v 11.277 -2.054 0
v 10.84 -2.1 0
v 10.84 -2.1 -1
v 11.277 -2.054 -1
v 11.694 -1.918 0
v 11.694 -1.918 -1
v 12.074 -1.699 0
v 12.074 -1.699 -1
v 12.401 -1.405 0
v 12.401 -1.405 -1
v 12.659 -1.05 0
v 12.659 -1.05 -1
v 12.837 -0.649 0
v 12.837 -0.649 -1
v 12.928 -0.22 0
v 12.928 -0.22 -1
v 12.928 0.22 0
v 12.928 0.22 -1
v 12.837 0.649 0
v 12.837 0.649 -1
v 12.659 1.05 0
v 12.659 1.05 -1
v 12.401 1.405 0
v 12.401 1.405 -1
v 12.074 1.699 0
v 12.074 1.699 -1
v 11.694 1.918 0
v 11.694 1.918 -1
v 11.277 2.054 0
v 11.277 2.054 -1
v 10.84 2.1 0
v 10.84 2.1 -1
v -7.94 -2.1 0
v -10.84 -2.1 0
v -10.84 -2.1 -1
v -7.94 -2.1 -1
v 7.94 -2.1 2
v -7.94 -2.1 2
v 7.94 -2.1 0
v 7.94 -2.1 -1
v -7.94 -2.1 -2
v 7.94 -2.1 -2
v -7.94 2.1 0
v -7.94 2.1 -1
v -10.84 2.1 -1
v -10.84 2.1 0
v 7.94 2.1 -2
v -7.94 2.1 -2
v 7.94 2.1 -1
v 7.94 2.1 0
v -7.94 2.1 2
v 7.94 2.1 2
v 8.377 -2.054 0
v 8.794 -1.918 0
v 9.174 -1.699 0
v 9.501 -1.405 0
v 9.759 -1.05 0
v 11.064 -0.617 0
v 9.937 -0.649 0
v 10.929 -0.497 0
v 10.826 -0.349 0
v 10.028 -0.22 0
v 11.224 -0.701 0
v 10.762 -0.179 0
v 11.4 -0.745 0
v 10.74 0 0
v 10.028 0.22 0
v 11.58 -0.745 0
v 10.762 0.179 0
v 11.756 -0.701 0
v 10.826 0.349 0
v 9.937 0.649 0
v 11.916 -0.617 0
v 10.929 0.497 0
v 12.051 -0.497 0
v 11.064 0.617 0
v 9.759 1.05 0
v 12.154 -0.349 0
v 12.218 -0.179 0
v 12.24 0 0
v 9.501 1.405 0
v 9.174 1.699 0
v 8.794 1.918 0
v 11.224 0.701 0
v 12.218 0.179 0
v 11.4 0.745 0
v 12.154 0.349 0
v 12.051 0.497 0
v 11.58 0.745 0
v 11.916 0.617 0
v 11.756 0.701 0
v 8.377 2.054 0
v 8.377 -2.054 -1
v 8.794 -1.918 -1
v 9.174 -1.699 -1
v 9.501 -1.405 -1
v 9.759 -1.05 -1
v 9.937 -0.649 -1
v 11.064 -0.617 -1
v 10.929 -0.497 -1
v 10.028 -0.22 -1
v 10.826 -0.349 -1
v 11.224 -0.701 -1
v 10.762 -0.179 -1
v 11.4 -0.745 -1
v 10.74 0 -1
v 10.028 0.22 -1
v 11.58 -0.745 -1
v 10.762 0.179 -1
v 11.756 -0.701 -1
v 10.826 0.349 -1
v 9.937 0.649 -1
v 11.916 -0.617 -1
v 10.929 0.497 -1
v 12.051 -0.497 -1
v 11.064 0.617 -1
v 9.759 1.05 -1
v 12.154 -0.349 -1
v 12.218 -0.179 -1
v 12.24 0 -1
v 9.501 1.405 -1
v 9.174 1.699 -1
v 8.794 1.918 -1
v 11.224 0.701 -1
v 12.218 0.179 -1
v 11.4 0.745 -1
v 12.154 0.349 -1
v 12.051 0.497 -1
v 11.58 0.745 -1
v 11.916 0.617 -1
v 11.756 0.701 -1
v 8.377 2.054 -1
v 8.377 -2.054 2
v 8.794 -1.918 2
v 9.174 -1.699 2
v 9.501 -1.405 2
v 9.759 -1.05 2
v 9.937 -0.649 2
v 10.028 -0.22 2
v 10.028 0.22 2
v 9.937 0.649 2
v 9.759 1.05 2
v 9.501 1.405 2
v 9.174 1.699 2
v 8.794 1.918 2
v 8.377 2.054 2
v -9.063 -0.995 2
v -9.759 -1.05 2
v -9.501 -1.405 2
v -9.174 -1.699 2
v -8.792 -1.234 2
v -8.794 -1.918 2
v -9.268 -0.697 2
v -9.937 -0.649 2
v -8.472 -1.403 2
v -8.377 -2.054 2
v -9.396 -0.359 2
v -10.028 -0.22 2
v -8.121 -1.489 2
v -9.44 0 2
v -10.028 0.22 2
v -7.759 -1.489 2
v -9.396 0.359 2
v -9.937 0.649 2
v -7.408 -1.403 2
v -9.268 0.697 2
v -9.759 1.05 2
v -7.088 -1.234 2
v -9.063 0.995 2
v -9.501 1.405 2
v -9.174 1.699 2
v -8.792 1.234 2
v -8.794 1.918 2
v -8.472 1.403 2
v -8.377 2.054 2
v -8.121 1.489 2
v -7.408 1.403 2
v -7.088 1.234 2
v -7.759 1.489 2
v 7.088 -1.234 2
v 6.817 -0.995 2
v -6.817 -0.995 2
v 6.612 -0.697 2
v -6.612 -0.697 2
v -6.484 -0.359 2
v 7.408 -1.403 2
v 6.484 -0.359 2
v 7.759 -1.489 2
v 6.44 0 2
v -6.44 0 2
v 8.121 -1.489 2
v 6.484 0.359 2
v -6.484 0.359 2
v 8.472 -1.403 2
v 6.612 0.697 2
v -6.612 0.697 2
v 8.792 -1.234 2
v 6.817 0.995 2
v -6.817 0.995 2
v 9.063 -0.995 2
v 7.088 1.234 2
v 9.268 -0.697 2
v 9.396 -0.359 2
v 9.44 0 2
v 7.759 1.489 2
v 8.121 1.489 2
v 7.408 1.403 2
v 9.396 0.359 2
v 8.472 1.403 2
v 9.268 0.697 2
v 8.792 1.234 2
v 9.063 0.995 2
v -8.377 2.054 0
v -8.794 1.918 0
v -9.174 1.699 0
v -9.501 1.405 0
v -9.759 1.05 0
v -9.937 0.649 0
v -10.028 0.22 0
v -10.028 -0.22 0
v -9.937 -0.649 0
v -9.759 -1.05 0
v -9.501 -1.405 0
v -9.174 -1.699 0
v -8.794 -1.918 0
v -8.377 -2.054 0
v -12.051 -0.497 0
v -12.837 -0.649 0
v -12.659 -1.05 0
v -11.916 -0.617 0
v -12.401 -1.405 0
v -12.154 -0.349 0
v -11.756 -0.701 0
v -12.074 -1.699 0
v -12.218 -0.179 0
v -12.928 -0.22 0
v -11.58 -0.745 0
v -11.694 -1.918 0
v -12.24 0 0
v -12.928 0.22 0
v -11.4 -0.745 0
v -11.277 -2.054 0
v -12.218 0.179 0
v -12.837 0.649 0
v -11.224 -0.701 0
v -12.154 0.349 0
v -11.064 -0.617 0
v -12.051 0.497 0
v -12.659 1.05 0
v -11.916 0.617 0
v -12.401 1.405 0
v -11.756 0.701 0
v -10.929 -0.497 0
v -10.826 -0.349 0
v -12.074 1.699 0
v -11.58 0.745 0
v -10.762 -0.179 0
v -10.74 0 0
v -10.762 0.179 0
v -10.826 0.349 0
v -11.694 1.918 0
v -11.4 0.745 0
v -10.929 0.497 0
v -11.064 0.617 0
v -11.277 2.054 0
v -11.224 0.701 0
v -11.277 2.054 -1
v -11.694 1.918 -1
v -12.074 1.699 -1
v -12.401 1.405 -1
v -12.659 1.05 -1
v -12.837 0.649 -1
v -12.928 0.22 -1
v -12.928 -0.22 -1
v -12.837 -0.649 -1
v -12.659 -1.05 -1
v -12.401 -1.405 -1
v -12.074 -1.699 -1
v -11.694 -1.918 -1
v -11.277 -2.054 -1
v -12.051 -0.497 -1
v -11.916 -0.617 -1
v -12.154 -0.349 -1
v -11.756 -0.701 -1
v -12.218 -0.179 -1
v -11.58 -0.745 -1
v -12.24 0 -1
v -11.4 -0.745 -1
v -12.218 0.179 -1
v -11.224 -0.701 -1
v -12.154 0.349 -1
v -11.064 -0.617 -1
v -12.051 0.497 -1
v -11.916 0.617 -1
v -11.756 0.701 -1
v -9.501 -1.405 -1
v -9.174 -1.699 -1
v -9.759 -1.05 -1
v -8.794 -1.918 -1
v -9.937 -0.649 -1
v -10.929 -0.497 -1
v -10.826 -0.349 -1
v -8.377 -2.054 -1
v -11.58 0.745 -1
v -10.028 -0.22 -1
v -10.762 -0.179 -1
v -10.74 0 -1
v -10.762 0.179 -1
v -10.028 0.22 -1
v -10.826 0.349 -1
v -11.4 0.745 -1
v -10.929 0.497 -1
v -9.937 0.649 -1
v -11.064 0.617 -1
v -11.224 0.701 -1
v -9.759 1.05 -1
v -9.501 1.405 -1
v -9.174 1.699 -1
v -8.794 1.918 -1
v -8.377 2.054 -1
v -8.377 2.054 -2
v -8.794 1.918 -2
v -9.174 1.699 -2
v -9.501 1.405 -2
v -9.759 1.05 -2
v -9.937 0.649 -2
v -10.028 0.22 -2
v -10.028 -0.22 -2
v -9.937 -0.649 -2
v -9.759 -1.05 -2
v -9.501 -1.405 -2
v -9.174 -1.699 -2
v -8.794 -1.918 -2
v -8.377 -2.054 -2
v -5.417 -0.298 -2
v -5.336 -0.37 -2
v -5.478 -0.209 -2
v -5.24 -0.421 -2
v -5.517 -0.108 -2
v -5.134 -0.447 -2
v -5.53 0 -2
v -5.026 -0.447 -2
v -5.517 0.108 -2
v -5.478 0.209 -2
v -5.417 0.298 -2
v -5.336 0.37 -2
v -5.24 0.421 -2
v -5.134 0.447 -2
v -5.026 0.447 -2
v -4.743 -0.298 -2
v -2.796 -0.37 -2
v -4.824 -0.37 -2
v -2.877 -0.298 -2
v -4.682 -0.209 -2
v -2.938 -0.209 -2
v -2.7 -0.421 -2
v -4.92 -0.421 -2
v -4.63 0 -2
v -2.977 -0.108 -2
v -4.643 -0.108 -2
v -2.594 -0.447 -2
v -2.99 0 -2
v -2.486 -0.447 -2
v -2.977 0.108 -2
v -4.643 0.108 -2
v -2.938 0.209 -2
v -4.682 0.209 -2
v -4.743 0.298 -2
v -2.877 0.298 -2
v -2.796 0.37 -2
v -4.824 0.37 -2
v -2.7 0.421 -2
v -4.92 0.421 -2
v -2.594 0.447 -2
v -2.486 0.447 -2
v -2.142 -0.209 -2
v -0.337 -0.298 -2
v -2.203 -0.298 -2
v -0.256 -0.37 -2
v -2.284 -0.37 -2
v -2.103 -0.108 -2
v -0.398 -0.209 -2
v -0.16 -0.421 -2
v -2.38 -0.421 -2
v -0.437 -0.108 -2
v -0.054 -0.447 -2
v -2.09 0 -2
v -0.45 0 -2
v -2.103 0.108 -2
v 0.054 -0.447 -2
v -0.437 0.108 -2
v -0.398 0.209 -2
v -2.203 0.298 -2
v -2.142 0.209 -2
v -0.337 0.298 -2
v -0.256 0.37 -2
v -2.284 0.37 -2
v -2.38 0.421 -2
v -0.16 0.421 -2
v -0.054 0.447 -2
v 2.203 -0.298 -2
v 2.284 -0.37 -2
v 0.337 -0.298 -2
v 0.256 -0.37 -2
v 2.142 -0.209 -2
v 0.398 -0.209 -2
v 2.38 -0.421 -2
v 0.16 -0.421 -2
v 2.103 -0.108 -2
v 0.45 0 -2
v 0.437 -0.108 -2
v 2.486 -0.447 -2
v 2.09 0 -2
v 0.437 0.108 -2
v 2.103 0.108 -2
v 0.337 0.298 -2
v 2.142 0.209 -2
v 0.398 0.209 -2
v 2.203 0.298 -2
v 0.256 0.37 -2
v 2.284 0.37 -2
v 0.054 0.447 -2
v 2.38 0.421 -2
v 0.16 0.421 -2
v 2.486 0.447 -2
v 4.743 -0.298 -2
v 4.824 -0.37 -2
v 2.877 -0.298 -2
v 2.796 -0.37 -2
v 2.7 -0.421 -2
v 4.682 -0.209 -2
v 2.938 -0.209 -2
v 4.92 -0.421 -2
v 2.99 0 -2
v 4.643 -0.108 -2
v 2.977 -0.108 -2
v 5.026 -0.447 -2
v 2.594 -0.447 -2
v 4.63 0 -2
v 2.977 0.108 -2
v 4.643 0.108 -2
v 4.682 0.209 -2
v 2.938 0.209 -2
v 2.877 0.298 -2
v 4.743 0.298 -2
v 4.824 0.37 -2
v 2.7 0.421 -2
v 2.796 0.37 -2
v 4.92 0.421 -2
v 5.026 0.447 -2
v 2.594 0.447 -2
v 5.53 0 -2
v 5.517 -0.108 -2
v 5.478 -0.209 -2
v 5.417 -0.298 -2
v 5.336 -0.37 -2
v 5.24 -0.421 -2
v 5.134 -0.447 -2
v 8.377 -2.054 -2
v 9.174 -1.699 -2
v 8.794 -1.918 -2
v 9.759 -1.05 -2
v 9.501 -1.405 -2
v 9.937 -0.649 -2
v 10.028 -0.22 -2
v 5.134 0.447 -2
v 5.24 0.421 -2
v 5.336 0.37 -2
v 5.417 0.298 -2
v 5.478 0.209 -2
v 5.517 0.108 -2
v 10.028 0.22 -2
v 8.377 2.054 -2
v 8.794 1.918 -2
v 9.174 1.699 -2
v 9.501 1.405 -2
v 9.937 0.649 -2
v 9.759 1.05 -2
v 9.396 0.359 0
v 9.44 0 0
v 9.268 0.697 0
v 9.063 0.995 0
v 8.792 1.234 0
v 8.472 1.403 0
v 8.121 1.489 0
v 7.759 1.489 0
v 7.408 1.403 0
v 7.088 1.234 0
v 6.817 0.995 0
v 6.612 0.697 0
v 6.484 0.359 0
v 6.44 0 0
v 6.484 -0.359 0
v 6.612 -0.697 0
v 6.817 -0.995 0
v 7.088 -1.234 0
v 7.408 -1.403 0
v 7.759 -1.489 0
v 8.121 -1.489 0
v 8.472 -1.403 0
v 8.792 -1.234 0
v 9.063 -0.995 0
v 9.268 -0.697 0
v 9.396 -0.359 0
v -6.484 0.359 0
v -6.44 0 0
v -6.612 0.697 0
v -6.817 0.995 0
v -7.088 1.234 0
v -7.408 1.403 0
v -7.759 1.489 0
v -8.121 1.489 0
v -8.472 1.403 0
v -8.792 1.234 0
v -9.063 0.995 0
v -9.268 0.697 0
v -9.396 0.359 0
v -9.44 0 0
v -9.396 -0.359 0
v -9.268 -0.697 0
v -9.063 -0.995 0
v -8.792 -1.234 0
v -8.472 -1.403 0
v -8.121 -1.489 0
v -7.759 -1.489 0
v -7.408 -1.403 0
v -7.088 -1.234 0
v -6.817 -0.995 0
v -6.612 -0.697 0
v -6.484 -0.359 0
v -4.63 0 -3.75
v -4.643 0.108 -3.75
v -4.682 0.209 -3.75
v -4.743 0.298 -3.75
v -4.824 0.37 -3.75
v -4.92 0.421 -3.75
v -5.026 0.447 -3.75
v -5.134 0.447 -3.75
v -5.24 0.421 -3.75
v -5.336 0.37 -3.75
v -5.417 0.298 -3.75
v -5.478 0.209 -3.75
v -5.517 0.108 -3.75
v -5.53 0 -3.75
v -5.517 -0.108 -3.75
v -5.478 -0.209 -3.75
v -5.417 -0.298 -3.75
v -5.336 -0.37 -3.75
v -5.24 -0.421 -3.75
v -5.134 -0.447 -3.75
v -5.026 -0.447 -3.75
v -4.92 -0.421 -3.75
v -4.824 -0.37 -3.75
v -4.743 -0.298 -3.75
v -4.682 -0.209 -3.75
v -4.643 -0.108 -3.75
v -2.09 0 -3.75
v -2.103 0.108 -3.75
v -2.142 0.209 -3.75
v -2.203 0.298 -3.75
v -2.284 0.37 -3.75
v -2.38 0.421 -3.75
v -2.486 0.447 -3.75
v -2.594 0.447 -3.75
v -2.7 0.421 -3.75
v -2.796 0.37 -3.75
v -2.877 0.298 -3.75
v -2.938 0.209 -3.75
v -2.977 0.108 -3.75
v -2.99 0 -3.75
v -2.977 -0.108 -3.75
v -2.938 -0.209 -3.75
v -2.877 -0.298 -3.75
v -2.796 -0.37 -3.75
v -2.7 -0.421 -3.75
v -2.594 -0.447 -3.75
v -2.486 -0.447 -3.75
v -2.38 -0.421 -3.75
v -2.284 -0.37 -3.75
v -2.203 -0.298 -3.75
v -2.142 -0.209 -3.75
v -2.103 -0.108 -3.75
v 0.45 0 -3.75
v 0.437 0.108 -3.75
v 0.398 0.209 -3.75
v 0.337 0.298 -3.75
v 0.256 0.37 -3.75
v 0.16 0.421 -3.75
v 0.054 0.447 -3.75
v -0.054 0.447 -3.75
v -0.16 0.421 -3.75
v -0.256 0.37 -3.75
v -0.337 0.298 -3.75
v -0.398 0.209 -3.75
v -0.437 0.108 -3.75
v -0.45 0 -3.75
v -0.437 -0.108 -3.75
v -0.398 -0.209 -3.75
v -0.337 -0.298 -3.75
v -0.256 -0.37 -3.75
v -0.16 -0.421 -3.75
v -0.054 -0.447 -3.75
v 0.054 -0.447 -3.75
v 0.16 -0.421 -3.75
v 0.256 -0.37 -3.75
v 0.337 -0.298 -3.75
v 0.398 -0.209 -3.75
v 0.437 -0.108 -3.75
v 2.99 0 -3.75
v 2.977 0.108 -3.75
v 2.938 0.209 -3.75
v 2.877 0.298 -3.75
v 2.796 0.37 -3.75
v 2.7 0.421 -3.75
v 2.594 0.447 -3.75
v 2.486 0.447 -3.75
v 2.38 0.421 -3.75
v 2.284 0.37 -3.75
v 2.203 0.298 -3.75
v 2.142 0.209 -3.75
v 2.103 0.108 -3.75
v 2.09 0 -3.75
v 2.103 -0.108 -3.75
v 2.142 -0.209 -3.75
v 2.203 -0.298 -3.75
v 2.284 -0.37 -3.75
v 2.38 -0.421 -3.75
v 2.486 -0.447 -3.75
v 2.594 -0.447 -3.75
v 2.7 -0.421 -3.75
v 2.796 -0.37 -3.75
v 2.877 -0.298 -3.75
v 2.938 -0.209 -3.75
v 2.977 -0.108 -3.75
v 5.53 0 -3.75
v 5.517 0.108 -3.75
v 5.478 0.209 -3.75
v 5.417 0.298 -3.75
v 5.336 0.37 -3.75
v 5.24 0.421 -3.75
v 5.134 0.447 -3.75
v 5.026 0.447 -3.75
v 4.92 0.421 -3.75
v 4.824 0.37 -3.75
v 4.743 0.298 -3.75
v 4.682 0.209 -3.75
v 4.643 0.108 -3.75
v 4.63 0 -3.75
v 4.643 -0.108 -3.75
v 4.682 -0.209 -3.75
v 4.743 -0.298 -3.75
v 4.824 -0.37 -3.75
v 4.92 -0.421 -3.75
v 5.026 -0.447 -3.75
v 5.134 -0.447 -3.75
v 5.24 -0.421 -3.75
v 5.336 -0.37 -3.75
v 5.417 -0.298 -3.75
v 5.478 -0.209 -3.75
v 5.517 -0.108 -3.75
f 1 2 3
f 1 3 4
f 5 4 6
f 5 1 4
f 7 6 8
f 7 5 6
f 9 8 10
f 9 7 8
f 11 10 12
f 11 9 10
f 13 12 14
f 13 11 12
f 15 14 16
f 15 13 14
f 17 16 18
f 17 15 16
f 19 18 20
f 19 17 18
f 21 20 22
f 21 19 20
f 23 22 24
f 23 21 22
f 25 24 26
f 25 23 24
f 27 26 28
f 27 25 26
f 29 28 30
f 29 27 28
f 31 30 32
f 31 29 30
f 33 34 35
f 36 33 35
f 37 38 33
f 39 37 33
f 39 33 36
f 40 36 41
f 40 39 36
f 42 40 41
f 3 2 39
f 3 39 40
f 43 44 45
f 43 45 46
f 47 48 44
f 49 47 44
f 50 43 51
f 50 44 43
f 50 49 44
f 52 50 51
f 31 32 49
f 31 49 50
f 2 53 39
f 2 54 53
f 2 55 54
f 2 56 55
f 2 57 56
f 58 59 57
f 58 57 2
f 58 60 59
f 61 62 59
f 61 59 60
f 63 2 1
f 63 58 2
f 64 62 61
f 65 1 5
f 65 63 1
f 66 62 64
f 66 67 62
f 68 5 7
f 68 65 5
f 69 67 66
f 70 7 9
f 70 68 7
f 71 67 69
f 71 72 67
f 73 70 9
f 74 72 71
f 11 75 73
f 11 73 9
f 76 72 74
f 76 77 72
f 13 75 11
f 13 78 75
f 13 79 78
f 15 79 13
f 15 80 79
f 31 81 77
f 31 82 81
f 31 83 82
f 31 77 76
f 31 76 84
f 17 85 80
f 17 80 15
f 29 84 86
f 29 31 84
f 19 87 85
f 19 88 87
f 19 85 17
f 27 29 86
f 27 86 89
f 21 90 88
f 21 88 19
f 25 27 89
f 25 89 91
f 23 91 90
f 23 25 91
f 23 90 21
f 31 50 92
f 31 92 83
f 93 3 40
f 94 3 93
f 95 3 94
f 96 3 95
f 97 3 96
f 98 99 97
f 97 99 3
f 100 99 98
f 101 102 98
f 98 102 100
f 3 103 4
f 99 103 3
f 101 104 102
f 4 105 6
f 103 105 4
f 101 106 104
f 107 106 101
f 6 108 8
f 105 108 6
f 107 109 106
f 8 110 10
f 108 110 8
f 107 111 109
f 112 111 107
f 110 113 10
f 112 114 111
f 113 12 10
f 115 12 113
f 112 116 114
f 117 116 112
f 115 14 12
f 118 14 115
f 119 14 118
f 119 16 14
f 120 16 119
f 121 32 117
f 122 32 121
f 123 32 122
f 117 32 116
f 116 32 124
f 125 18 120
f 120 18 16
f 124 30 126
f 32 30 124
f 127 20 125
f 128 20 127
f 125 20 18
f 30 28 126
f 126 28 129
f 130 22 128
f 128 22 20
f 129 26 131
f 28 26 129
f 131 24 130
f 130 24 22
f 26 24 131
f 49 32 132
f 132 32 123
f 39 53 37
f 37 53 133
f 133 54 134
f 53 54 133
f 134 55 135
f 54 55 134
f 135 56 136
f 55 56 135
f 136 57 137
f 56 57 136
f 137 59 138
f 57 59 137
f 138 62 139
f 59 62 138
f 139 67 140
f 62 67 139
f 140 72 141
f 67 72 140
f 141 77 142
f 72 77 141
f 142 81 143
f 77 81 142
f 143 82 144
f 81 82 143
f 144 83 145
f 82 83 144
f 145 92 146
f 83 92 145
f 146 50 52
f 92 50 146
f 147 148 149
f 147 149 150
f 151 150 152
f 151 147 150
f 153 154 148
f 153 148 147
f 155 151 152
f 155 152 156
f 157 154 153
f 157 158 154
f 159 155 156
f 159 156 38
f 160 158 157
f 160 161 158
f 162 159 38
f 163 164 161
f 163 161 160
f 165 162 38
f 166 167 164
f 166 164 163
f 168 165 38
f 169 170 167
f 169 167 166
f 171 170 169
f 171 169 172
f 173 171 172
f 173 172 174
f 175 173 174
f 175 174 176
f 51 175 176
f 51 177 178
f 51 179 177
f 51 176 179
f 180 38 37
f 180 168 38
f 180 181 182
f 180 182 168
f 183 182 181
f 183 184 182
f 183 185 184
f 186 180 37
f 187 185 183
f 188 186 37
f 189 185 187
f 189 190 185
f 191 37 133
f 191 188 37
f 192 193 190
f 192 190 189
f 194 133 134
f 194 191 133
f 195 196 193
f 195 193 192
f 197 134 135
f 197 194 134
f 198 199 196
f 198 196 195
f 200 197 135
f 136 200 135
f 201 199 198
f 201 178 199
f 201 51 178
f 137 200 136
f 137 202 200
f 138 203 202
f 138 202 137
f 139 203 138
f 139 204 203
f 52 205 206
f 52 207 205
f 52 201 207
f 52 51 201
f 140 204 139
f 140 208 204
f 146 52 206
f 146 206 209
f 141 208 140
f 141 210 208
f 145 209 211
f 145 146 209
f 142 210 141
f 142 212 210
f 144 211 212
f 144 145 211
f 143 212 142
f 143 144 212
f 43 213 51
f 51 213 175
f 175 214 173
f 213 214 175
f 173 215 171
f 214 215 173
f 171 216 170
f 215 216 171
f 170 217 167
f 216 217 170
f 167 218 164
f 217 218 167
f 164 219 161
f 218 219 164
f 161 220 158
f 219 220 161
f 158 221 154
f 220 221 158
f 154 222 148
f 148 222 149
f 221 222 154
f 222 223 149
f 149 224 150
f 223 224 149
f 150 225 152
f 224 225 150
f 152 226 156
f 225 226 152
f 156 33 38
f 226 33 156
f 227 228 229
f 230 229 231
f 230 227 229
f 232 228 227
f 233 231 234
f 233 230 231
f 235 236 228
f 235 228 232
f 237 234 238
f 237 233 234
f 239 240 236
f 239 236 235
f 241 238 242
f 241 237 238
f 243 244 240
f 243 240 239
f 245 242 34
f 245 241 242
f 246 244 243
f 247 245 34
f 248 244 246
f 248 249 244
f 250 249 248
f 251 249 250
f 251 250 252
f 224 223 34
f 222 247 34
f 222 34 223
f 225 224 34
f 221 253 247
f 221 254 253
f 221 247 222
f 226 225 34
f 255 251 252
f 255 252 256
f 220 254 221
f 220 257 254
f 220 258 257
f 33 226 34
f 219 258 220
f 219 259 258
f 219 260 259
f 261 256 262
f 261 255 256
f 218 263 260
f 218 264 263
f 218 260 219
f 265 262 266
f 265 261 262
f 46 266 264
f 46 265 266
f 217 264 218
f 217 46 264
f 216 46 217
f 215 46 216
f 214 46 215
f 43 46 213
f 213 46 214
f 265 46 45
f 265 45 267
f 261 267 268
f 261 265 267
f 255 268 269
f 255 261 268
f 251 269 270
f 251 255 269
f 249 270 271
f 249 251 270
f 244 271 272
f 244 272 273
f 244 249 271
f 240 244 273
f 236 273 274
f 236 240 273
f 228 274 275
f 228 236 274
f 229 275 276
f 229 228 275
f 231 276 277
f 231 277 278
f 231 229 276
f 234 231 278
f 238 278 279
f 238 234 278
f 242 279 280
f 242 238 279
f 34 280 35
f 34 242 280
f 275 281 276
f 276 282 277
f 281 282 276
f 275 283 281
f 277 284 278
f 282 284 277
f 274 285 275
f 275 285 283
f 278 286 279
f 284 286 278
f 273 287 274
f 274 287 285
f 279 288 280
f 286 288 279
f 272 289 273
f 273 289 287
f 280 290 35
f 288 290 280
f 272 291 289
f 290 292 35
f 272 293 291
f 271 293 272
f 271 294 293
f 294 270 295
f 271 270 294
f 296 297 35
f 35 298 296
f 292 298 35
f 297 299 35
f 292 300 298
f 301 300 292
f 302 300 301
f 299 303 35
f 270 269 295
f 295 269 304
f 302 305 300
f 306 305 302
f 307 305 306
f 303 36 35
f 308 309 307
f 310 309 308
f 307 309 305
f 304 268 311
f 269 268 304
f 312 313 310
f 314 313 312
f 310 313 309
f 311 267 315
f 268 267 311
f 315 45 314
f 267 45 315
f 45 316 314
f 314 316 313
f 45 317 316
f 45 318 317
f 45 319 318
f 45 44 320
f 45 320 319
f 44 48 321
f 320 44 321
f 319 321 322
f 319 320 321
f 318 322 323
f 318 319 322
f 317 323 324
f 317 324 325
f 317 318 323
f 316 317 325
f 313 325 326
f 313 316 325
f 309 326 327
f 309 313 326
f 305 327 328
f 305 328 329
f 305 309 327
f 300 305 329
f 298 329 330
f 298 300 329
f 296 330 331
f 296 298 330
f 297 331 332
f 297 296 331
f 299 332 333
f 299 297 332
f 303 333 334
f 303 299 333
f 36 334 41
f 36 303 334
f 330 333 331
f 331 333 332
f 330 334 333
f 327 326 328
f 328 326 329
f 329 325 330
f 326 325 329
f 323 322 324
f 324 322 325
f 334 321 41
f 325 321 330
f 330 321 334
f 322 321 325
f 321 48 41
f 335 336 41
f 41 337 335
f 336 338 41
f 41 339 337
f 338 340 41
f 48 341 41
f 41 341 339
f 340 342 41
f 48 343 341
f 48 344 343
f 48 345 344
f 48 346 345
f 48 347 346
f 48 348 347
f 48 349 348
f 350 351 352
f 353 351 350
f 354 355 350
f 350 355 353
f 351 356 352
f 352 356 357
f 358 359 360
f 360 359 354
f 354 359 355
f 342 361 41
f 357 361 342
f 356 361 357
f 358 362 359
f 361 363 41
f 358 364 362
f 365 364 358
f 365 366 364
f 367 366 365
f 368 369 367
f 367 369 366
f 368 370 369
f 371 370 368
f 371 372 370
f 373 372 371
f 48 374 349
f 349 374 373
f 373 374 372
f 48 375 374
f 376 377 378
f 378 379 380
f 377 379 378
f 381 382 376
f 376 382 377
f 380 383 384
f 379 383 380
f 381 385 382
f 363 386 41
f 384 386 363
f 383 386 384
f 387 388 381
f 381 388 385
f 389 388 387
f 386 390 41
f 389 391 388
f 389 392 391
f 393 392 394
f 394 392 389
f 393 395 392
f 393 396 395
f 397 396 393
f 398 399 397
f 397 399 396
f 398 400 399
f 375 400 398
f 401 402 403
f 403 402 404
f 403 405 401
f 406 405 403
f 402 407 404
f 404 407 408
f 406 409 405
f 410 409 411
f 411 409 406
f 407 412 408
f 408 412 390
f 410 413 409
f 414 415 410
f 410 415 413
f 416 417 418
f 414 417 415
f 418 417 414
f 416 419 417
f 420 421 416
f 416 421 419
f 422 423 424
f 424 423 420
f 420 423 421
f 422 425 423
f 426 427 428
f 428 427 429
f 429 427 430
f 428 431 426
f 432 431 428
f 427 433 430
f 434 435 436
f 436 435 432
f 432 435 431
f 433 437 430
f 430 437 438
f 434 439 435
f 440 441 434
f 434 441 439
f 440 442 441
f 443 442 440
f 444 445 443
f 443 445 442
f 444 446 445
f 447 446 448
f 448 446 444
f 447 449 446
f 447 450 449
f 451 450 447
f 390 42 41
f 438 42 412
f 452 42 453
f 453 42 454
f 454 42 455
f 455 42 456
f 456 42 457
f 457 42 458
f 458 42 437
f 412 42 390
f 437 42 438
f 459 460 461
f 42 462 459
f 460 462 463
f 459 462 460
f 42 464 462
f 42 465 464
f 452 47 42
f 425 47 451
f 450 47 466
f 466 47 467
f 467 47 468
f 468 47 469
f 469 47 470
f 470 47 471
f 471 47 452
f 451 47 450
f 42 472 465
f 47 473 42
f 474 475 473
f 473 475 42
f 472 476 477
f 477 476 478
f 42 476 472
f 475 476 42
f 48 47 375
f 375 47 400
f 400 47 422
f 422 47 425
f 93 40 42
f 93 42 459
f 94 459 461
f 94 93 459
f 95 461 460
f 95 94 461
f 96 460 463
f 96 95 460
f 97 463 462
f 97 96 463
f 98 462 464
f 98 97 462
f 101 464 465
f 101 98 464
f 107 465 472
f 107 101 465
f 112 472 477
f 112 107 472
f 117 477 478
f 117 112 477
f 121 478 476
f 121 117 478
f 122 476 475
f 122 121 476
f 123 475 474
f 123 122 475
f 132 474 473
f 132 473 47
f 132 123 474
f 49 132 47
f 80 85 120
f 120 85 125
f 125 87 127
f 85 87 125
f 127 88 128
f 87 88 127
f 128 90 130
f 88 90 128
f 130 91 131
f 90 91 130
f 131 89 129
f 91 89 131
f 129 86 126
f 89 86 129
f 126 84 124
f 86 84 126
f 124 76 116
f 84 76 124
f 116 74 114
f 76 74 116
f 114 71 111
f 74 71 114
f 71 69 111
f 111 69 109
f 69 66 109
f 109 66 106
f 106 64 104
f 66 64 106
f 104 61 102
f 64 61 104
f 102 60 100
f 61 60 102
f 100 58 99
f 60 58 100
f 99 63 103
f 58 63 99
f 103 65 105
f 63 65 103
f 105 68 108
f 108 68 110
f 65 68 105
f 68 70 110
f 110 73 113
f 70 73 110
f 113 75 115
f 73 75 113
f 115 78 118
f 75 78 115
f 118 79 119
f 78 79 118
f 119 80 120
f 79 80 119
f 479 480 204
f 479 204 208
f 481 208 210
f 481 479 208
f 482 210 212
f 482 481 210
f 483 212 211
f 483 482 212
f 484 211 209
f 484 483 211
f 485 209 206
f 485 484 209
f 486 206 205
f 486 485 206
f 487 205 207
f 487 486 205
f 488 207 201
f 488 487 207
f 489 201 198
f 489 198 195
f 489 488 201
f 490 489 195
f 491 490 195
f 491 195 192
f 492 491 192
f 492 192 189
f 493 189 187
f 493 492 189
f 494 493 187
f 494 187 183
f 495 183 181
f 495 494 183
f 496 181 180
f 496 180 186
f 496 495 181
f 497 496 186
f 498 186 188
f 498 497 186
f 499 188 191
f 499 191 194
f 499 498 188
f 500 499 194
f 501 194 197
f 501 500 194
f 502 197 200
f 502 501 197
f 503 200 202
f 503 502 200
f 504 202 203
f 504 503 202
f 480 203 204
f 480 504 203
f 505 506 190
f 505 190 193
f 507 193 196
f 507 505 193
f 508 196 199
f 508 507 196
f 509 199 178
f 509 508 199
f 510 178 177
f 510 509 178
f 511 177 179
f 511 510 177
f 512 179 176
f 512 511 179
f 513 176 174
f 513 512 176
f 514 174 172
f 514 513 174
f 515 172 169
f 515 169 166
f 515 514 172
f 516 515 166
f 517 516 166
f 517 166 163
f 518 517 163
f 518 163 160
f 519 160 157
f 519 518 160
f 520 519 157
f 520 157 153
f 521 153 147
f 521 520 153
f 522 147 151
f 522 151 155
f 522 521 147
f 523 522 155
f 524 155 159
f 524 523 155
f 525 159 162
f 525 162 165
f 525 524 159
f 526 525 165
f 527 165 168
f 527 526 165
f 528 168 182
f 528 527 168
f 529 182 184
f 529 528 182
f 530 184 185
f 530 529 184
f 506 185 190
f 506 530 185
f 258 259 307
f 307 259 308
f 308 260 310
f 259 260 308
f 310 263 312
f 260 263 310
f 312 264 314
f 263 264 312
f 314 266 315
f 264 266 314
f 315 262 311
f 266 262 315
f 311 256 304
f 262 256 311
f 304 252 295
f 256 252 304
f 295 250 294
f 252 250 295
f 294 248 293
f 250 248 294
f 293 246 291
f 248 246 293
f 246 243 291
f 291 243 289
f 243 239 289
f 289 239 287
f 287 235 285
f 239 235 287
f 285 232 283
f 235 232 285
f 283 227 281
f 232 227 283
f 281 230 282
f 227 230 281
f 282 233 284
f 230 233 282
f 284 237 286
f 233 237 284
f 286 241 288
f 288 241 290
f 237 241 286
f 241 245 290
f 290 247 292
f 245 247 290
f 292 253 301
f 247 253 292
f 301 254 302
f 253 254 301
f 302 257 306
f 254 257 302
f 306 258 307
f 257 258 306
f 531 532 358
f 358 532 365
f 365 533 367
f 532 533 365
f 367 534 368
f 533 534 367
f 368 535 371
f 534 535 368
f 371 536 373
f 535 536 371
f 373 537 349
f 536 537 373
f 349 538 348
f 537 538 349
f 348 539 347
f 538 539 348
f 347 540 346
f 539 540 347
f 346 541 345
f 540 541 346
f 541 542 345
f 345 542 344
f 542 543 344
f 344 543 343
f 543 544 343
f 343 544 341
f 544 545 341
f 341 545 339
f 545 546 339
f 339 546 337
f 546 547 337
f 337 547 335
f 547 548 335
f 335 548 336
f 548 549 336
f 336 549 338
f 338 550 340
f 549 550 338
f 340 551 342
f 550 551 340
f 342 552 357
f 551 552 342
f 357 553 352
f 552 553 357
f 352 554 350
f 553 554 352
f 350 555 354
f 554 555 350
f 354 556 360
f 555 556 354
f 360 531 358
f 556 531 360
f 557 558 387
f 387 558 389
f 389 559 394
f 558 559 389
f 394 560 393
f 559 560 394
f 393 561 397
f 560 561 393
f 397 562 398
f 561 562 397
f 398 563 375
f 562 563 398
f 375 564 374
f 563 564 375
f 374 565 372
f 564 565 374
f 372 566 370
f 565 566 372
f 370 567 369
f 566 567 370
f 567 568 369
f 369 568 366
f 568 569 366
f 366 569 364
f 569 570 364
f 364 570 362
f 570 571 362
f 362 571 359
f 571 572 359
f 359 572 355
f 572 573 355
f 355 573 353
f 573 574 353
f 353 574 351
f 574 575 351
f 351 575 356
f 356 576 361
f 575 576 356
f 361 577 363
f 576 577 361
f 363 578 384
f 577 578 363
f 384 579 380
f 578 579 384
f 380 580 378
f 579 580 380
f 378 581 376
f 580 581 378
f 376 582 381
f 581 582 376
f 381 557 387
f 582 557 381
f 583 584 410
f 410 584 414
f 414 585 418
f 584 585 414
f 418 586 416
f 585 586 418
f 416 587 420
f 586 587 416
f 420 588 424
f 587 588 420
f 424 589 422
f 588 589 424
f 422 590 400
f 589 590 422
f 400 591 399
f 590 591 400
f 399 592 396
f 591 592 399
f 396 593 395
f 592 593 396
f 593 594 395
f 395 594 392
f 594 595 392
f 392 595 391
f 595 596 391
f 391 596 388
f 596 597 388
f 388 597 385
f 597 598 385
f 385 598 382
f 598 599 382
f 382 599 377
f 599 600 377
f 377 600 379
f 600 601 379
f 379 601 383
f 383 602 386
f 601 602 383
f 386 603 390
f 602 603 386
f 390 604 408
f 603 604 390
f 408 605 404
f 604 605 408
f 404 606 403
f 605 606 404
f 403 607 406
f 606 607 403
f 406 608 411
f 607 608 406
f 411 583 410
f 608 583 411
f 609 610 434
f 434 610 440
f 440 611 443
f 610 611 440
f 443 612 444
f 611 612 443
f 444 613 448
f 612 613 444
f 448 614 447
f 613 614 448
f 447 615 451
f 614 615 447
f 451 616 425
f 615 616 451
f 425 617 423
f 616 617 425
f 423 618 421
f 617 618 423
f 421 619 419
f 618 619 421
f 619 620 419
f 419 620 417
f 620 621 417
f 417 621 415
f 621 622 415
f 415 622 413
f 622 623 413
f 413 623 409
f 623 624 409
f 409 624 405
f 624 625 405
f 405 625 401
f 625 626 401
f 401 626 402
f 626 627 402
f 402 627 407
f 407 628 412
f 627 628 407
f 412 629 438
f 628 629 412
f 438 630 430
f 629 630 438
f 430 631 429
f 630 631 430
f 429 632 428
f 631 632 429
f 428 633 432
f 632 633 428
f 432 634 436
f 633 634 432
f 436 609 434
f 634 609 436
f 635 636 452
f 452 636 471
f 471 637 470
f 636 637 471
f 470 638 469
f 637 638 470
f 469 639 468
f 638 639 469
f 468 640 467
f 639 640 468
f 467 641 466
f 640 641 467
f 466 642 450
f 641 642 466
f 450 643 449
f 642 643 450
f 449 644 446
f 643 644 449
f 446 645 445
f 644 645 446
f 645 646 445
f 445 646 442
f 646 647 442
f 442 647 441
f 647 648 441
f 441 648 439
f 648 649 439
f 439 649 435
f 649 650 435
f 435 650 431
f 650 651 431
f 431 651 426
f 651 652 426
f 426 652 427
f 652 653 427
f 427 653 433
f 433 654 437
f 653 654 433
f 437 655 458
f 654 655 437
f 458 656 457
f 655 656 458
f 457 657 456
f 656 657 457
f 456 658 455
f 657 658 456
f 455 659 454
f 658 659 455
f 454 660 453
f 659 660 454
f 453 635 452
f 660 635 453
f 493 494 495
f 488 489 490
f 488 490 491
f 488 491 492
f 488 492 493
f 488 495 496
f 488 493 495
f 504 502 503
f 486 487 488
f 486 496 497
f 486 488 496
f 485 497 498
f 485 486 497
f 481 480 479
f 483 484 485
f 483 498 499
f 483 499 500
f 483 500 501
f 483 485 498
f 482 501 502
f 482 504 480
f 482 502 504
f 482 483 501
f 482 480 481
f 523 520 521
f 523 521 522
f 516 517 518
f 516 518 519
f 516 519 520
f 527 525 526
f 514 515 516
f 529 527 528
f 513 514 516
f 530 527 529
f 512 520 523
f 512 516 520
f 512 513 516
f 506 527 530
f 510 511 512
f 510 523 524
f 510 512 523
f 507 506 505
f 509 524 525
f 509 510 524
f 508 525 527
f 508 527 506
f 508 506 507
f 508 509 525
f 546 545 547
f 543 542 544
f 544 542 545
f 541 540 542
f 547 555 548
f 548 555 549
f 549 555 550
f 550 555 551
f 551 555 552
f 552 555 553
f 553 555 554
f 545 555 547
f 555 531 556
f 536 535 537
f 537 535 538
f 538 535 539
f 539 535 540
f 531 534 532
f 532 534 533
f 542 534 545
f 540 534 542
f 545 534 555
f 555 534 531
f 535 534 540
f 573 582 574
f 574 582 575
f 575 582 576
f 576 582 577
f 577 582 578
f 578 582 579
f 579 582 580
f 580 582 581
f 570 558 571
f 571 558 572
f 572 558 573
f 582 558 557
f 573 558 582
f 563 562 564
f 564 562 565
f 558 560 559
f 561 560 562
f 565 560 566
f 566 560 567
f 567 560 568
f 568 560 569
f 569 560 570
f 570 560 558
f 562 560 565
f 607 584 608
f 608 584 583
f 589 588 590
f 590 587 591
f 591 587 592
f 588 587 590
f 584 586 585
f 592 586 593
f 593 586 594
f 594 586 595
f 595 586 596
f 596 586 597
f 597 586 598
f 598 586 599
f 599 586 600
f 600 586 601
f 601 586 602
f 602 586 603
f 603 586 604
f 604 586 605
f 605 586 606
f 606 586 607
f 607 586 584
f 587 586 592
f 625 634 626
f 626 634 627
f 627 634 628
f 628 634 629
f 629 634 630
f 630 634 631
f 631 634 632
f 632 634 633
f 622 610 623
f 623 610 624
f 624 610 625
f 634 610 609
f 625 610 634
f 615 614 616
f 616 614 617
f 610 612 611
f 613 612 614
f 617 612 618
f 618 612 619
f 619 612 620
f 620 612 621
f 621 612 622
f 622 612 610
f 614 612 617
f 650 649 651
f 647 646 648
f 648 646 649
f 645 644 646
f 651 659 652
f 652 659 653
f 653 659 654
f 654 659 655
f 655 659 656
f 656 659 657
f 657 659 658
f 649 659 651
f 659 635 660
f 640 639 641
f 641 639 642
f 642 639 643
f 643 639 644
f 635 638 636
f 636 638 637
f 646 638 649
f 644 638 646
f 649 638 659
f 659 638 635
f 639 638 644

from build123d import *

# Parameters (mm, degrees)
SKETCH_R     = 0.75
PAD_DEPTH    = 1
SKETCH001_R  = 1.5
PAD001_DEPTH = 2
PAD002_DEPTH = 2
SKETCH003_R  = 0.45
PAD003_DEPTH = 3.75


with BuildPart() as part:
    # Sketch → Pad (new body)
    with BuildSketch(Plane.XY):
        with BuildLine():
            ThreePointArc((10.84, -2.1), (12.94, 0), (10.84, 2.1))
            Line((10.84, 2.1), (-10.84, 2.1))
            ThreePointArc((-10.84, 2.1), (-12.94, 0), (-10.84, -2.1))
            Line((10.84, -2.1), (-10.84, -2.1))
        make_face()
        with Locations((-11.49, 0)):
            Circle(SKETCH_R, mode=Mode.SUBTRACT)
        with Locations((11.49, 0)):
            Circle(SKETCH_R, mode=Mode.SUBTRACT)
    extrude(amount=-PAD_DEPTH)

    # Sketch001 → Pad001 (join)
    with BuildSketch(Plane.XY):
        with BuildLine():
            ThreePointArc((-7.94, 2.1), (-10.04, 0), (-7.94, -2.1))
            Line((-7.94, -2.1), (7.94, -2.1))
            ThreePointArc((7.94, -2.1), (10.04, 0), (7.94, 2.1))
            Line((-7.94, 2.1), (7.94, 2.1))
        make_face()
        with Locations((-7.94, 0)):
            Circle(SKETCH001_R, mode=Mode.SUBTRACT)
        with Locations((7.94, 0)):
            Circle(SKETCH001_R, mode=Mode.SUBTRACT)
    extrude(amount=PAD001_DEPTH)

    # Sketch002 → Pad002 (join)
    with BuildSketch(Plane.XY):
        with BuildLine():
            ThreePointArc((-7.939999, 2.1), (-10.039999, 0), (-7.939999, -2.1))
            Line((-7.939999, -2.1), (7.94, -2.1))
            ThreePointArc((7.94, -2.1), (10.04, 0), (7.94, 2.1))
            Line((-7.939999, 2.1), (7.94, 2.1))
        make_face()
    extrude(amount=-PAD002_DEPTH)

    # Sketch003 → Pad003 (join)
    with BuildSketch(Plane.XY):
        with Locations((-5.08, 0)):
            Circle(SKETCH003_R)
        with Locations((-2.54, 0)):
            Circle(SKETCH003_R)
        Circle(SKETCH003_R)
        with Locations((2.54, 0)):
            Circle(SKETCH003_R)
        with Locations((5.08, 0)):
            Circle(SKETCH003_R)
    extrude(amount=-PAD003_DEPTH)


solid = part.part
